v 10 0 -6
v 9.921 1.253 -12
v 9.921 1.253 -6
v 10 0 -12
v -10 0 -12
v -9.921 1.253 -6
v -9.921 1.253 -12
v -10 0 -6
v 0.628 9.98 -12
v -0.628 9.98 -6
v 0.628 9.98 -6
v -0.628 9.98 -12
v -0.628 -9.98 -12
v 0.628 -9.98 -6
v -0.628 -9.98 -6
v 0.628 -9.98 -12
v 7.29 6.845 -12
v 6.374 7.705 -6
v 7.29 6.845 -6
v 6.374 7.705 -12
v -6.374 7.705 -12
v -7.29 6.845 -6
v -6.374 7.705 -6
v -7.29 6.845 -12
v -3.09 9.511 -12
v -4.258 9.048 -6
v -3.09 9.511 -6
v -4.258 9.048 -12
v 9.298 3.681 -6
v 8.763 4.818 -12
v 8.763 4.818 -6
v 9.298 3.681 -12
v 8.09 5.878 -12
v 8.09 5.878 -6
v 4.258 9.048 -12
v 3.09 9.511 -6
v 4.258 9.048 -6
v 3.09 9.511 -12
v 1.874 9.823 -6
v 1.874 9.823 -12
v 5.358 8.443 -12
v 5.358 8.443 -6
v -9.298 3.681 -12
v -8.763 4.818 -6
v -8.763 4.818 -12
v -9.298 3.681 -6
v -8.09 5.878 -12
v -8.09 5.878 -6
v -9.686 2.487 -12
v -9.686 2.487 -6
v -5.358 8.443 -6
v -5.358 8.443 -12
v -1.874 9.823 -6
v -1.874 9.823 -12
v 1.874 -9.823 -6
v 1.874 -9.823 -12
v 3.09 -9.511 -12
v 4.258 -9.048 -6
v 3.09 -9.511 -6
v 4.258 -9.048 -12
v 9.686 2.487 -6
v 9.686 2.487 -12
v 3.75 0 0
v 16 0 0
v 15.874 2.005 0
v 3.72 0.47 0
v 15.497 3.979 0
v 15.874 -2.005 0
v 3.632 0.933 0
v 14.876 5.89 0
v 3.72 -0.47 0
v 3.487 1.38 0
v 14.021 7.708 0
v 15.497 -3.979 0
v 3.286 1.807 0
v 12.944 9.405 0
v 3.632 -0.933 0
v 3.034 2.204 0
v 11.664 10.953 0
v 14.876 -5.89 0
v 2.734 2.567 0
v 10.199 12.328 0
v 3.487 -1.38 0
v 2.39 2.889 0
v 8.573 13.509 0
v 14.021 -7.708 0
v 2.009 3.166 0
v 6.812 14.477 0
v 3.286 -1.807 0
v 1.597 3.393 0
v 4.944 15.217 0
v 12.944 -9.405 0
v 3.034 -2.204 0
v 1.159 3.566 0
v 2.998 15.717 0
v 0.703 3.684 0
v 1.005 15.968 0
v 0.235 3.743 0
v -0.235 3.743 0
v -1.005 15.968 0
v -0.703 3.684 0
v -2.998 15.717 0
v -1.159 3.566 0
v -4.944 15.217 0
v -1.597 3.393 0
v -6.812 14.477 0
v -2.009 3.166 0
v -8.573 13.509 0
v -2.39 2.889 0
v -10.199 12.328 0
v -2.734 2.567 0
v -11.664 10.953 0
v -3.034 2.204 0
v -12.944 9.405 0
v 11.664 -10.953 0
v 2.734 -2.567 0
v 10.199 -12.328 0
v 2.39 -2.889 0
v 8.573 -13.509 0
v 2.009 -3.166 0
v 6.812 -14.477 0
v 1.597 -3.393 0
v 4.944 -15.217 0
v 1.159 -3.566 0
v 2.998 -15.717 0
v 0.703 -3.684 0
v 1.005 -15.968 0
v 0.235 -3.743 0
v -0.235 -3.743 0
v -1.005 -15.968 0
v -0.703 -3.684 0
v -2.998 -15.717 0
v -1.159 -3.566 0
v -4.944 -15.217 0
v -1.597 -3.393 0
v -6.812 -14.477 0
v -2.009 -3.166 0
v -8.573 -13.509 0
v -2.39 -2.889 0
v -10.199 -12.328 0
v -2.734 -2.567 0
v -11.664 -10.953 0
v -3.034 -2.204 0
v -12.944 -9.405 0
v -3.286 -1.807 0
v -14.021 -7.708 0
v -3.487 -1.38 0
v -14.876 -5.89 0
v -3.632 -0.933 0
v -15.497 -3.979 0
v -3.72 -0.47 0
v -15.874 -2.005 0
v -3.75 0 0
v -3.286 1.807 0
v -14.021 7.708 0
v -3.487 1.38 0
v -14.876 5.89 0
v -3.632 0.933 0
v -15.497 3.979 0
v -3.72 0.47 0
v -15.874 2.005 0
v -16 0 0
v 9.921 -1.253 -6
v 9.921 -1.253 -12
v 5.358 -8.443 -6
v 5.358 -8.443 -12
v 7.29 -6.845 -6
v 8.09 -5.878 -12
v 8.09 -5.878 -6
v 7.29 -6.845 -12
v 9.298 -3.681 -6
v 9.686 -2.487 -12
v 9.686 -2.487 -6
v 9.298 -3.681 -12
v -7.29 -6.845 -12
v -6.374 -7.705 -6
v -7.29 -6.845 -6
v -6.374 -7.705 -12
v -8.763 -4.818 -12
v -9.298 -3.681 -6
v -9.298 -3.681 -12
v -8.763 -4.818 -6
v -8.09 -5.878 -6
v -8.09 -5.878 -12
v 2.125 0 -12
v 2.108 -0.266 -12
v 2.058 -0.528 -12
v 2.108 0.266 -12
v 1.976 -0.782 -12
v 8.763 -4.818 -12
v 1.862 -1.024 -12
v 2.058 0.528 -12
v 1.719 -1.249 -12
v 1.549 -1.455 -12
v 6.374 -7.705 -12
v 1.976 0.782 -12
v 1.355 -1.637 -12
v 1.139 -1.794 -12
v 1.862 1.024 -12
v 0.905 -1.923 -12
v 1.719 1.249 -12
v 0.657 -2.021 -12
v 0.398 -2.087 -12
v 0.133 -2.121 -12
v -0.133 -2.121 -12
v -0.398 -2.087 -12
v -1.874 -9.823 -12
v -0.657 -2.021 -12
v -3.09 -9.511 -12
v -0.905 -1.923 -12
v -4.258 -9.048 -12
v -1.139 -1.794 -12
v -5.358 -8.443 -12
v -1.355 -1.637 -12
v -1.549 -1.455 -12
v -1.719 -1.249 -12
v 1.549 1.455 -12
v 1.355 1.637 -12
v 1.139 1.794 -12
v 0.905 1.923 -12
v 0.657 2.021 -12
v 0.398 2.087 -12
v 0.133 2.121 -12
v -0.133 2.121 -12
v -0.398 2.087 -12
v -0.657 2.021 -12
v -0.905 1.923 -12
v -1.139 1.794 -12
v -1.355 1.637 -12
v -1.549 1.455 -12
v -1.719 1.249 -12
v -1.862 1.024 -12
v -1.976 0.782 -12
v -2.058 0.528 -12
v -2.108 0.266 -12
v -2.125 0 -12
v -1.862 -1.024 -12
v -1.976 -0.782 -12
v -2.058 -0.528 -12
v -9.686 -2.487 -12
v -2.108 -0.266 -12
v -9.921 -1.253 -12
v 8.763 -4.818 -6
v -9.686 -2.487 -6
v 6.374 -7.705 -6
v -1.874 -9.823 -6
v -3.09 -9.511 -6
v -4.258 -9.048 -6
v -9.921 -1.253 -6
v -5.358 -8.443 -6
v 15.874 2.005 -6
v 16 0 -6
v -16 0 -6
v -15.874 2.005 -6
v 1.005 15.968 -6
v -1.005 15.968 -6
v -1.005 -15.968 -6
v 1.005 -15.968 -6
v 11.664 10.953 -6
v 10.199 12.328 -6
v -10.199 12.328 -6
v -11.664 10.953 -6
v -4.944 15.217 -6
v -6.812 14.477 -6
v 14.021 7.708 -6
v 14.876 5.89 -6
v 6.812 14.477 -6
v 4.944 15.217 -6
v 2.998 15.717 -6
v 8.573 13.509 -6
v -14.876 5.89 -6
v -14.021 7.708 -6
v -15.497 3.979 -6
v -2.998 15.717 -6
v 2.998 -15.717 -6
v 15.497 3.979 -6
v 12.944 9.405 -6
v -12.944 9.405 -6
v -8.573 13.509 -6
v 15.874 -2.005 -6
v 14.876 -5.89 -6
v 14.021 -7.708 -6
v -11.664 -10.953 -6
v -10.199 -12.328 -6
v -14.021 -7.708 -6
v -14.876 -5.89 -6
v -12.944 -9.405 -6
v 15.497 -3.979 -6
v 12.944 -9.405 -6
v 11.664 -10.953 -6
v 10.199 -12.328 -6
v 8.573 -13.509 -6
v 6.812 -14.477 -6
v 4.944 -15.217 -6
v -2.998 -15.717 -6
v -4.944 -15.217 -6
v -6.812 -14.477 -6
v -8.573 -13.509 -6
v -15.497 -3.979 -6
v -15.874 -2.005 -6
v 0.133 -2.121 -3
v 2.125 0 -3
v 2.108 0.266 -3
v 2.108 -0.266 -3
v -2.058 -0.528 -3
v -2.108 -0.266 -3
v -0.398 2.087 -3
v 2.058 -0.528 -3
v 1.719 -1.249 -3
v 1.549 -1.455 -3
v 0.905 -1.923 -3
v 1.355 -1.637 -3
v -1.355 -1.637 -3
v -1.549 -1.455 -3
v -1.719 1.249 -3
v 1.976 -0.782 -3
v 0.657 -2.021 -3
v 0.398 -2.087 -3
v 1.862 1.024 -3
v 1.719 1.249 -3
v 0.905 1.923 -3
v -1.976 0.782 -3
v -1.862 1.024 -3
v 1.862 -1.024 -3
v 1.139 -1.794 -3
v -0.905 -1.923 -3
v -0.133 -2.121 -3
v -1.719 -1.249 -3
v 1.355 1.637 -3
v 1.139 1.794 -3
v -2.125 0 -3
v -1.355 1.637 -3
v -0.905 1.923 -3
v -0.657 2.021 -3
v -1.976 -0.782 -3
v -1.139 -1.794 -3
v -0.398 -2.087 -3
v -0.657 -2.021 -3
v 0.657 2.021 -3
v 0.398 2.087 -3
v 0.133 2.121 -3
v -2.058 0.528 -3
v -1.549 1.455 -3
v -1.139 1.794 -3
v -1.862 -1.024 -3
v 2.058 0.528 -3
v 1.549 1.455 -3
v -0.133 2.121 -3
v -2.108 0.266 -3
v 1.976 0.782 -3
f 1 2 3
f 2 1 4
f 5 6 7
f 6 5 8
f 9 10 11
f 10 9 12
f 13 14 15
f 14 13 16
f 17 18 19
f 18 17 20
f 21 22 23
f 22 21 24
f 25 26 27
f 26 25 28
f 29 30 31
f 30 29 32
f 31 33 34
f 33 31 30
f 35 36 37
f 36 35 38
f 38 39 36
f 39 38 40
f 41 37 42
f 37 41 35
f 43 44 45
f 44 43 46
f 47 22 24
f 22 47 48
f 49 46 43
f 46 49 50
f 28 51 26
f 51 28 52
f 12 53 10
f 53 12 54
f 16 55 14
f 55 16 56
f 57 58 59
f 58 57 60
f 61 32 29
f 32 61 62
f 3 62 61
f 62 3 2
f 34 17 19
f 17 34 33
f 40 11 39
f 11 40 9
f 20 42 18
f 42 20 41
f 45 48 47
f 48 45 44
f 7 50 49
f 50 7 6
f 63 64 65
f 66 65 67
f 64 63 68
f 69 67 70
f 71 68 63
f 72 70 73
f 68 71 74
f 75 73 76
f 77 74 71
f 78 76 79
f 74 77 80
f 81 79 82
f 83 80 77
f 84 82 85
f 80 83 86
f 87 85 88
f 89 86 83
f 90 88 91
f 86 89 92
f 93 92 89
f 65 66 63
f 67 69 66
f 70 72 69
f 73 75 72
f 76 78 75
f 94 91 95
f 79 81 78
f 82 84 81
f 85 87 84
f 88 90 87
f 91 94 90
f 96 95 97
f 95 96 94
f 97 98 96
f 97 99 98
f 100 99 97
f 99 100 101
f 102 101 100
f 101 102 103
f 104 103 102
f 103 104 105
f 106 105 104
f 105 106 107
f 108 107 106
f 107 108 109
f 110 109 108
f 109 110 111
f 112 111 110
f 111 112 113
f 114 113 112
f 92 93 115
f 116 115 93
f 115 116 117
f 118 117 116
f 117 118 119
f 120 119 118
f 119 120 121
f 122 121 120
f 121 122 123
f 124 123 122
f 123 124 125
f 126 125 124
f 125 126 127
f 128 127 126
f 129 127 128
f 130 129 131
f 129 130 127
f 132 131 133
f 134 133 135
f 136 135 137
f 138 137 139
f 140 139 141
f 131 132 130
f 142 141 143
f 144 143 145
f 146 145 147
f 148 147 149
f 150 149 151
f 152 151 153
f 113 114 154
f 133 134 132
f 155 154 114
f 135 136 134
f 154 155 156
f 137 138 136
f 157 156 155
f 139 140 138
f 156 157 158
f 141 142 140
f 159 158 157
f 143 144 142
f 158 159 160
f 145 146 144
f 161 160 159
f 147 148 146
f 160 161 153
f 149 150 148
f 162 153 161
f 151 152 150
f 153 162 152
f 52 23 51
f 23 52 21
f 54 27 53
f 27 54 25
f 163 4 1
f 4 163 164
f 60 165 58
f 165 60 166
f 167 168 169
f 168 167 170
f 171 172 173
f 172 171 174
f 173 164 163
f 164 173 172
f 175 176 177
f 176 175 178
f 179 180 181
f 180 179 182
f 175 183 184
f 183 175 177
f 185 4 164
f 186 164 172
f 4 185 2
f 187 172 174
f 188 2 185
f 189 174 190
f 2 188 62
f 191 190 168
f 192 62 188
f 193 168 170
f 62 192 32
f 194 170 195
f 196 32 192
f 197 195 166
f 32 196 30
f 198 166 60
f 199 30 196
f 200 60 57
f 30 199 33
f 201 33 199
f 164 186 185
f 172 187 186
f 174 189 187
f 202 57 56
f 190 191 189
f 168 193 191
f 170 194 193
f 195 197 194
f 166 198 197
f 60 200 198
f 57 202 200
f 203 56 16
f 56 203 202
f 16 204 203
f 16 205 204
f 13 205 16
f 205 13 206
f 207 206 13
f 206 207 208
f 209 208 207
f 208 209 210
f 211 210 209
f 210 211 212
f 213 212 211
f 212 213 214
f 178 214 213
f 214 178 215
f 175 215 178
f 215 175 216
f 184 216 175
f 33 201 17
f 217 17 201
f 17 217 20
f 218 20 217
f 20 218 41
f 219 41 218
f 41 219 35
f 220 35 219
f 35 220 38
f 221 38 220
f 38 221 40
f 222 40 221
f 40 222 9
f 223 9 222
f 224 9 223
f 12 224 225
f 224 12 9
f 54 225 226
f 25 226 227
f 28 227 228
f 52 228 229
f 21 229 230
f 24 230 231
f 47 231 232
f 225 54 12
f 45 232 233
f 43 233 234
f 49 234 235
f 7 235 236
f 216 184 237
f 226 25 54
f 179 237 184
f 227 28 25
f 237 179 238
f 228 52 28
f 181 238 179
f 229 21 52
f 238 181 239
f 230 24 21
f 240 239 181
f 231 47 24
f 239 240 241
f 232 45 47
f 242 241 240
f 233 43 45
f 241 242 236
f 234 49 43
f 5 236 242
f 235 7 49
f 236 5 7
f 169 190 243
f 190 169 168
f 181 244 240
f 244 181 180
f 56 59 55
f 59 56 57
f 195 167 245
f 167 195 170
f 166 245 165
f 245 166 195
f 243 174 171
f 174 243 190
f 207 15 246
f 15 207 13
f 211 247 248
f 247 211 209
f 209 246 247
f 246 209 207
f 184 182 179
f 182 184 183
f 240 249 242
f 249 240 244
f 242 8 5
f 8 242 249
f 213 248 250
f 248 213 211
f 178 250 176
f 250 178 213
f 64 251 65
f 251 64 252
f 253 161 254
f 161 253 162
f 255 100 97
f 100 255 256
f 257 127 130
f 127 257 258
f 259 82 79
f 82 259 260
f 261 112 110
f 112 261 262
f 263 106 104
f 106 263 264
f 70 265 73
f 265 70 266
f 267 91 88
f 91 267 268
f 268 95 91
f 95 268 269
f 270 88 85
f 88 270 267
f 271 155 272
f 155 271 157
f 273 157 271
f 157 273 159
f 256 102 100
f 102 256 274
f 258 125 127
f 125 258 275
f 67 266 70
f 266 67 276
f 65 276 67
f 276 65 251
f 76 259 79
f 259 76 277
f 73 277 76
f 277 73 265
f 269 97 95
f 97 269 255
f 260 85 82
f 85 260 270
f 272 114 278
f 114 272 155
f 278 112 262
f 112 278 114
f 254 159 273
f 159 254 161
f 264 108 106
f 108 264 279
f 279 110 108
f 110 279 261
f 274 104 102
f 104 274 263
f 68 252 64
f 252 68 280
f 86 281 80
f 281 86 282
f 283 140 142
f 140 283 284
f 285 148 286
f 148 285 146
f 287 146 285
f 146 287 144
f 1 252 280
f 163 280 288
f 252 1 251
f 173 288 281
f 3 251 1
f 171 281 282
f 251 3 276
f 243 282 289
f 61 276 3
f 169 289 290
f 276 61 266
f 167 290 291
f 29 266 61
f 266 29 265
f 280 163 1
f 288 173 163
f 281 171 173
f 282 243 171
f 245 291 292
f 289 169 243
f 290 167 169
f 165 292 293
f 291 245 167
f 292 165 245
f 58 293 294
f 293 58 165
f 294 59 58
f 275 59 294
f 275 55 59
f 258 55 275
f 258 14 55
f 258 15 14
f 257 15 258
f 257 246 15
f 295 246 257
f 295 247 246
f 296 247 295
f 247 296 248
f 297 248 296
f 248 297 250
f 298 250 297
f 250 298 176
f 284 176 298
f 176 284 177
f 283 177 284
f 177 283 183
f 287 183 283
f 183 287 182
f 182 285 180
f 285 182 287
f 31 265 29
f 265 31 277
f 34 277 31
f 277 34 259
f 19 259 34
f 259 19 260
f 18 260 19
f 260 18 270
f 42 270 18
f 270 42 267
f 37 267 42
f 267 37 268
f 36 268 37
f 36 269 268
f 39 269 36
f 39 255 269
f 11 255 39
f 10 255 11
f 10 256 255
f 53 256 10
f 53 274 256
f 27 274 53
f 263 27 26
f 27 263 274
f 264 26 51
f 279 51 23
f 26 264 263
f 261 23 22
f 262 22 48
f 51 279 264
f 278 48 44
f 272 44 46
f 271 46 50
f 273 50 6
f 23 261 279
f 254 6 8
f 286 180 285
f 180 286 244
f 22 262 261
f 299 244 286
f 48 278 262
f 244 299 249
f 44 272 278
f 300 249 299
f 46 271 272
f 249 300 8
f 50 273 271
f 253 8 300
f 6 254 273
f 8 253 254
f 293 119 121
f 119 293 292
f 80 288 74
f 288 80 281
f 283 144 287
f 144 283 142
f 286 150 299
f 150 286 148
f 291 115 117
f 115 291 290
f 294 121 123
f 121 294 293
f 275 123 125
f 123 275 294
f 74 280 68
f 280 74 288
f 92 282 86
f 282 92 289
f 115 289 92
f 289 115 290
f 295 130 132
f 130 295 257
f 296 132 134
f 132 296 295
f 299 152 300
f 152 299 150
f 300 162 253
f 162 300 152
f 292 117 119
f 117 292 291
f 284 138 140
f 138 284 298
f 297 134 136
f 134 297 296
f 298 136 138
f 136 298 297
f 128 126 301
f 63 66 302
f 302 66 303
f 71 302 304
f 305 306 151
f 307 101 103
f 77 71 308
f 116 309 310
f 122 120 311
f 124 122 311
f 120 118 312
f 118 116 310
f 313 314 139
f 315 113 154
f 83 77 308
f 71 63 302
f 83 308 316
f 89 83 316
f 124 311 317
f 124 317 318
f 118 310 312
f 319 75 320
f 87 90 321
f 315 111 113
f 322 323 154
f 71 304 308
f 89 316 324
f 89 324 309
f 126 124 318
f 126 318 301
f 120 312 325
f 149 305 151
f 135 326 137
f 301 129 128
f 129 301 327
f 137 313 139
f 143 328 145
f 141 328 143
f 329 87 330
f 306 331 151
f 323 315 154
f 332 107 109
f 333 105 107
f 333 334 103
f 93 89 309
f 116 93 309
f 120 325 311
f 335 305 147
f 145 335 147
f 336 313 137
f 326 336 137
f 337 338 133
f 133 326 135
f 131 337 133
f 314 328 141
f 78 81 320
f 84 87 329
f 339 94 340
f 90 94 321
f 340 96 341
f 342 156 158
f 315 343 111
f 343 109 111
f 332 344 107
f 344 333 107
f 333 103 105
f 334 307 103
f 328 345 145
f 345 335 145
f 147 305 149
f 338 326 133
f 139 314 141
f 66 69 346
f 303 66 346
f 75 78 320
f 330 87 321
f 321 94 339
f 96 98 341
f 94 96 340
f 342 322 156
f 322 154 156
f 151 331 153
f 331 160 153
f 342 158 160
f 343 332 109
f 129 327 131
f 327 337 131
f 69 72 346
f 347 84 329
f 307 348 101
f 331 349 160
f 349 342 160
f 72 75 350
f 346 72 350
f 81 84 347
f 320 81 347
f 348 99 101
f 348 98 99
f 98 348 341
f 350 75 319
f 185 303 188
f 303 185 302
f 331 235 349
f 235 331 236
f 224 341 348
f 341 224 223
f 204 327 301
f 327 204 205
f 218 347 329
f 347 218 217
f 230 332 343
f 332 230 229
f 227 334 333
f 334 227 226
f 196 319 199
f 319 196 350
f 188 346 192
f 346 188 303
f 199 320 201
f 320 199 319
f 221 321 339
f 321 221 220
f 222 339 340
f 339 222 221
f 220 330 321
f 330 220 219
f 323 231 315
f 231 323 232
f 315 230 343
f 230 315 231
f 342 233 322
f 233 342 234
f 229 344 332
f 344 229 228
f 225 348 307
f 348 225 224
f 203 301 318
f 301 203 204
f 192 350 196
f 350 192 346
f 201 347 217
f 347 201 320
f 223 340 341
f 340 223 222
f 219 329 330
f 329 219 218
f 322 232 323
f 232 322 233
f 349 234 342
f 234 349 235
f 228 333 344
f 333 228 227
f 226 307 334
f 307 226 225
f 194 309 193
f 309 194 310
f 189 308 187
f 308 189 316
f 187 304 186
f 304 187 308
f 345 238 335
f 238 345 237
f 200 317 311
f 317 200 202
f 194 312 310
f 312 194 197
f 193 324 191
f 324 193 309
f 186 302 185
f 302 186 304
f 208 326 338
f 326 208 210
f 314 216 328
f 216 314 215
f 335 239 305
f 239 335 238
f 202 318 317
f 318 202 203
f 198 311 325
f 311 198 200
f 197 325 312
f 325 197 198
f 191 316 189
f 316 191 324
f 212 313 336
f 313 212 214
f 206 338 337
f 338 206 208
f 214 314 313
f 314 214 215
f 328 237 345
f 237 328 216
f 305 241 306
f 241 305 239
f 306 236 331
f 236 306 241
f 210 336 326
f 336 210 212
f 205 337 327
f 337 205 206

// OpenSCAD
$fn = 50;


difference() {
	union() {
		translate(v = [0, 0, -12.0000000000]) {
			cylinder(h = 12, r = 10.0000000000);
		}
		translate(v = [0, 0, -6.0000000000]) {
			cylinder(h = 6, r = 16.0000000000);
		}
	}
	union() {
		translate(v = [0, 0, 0]) {
			rotate(a = [0, 0, 0]) {
				difference() {
					union() {
						#translate(v = [0, 0, -12.0000000000]) {
							cylinder(h = 12, r = 2.0000000000);
						}
						#translate(v = [0, 0, -3]) {
							cylinder(h = 3, r1 = 2.1250000000, r2 = 3.7500000000);
						}
						#translate(v = [0, 0, -12.0000000000]) {
							cylinder(h = 12, r = 2.1250000000);
						}
						#translate(v = [0, 0, -12.0000000000]) {
							cylinder(h = 12, r = 2.0000000000);
						}
					}
					union();
				}
			}
		}
	}
}
